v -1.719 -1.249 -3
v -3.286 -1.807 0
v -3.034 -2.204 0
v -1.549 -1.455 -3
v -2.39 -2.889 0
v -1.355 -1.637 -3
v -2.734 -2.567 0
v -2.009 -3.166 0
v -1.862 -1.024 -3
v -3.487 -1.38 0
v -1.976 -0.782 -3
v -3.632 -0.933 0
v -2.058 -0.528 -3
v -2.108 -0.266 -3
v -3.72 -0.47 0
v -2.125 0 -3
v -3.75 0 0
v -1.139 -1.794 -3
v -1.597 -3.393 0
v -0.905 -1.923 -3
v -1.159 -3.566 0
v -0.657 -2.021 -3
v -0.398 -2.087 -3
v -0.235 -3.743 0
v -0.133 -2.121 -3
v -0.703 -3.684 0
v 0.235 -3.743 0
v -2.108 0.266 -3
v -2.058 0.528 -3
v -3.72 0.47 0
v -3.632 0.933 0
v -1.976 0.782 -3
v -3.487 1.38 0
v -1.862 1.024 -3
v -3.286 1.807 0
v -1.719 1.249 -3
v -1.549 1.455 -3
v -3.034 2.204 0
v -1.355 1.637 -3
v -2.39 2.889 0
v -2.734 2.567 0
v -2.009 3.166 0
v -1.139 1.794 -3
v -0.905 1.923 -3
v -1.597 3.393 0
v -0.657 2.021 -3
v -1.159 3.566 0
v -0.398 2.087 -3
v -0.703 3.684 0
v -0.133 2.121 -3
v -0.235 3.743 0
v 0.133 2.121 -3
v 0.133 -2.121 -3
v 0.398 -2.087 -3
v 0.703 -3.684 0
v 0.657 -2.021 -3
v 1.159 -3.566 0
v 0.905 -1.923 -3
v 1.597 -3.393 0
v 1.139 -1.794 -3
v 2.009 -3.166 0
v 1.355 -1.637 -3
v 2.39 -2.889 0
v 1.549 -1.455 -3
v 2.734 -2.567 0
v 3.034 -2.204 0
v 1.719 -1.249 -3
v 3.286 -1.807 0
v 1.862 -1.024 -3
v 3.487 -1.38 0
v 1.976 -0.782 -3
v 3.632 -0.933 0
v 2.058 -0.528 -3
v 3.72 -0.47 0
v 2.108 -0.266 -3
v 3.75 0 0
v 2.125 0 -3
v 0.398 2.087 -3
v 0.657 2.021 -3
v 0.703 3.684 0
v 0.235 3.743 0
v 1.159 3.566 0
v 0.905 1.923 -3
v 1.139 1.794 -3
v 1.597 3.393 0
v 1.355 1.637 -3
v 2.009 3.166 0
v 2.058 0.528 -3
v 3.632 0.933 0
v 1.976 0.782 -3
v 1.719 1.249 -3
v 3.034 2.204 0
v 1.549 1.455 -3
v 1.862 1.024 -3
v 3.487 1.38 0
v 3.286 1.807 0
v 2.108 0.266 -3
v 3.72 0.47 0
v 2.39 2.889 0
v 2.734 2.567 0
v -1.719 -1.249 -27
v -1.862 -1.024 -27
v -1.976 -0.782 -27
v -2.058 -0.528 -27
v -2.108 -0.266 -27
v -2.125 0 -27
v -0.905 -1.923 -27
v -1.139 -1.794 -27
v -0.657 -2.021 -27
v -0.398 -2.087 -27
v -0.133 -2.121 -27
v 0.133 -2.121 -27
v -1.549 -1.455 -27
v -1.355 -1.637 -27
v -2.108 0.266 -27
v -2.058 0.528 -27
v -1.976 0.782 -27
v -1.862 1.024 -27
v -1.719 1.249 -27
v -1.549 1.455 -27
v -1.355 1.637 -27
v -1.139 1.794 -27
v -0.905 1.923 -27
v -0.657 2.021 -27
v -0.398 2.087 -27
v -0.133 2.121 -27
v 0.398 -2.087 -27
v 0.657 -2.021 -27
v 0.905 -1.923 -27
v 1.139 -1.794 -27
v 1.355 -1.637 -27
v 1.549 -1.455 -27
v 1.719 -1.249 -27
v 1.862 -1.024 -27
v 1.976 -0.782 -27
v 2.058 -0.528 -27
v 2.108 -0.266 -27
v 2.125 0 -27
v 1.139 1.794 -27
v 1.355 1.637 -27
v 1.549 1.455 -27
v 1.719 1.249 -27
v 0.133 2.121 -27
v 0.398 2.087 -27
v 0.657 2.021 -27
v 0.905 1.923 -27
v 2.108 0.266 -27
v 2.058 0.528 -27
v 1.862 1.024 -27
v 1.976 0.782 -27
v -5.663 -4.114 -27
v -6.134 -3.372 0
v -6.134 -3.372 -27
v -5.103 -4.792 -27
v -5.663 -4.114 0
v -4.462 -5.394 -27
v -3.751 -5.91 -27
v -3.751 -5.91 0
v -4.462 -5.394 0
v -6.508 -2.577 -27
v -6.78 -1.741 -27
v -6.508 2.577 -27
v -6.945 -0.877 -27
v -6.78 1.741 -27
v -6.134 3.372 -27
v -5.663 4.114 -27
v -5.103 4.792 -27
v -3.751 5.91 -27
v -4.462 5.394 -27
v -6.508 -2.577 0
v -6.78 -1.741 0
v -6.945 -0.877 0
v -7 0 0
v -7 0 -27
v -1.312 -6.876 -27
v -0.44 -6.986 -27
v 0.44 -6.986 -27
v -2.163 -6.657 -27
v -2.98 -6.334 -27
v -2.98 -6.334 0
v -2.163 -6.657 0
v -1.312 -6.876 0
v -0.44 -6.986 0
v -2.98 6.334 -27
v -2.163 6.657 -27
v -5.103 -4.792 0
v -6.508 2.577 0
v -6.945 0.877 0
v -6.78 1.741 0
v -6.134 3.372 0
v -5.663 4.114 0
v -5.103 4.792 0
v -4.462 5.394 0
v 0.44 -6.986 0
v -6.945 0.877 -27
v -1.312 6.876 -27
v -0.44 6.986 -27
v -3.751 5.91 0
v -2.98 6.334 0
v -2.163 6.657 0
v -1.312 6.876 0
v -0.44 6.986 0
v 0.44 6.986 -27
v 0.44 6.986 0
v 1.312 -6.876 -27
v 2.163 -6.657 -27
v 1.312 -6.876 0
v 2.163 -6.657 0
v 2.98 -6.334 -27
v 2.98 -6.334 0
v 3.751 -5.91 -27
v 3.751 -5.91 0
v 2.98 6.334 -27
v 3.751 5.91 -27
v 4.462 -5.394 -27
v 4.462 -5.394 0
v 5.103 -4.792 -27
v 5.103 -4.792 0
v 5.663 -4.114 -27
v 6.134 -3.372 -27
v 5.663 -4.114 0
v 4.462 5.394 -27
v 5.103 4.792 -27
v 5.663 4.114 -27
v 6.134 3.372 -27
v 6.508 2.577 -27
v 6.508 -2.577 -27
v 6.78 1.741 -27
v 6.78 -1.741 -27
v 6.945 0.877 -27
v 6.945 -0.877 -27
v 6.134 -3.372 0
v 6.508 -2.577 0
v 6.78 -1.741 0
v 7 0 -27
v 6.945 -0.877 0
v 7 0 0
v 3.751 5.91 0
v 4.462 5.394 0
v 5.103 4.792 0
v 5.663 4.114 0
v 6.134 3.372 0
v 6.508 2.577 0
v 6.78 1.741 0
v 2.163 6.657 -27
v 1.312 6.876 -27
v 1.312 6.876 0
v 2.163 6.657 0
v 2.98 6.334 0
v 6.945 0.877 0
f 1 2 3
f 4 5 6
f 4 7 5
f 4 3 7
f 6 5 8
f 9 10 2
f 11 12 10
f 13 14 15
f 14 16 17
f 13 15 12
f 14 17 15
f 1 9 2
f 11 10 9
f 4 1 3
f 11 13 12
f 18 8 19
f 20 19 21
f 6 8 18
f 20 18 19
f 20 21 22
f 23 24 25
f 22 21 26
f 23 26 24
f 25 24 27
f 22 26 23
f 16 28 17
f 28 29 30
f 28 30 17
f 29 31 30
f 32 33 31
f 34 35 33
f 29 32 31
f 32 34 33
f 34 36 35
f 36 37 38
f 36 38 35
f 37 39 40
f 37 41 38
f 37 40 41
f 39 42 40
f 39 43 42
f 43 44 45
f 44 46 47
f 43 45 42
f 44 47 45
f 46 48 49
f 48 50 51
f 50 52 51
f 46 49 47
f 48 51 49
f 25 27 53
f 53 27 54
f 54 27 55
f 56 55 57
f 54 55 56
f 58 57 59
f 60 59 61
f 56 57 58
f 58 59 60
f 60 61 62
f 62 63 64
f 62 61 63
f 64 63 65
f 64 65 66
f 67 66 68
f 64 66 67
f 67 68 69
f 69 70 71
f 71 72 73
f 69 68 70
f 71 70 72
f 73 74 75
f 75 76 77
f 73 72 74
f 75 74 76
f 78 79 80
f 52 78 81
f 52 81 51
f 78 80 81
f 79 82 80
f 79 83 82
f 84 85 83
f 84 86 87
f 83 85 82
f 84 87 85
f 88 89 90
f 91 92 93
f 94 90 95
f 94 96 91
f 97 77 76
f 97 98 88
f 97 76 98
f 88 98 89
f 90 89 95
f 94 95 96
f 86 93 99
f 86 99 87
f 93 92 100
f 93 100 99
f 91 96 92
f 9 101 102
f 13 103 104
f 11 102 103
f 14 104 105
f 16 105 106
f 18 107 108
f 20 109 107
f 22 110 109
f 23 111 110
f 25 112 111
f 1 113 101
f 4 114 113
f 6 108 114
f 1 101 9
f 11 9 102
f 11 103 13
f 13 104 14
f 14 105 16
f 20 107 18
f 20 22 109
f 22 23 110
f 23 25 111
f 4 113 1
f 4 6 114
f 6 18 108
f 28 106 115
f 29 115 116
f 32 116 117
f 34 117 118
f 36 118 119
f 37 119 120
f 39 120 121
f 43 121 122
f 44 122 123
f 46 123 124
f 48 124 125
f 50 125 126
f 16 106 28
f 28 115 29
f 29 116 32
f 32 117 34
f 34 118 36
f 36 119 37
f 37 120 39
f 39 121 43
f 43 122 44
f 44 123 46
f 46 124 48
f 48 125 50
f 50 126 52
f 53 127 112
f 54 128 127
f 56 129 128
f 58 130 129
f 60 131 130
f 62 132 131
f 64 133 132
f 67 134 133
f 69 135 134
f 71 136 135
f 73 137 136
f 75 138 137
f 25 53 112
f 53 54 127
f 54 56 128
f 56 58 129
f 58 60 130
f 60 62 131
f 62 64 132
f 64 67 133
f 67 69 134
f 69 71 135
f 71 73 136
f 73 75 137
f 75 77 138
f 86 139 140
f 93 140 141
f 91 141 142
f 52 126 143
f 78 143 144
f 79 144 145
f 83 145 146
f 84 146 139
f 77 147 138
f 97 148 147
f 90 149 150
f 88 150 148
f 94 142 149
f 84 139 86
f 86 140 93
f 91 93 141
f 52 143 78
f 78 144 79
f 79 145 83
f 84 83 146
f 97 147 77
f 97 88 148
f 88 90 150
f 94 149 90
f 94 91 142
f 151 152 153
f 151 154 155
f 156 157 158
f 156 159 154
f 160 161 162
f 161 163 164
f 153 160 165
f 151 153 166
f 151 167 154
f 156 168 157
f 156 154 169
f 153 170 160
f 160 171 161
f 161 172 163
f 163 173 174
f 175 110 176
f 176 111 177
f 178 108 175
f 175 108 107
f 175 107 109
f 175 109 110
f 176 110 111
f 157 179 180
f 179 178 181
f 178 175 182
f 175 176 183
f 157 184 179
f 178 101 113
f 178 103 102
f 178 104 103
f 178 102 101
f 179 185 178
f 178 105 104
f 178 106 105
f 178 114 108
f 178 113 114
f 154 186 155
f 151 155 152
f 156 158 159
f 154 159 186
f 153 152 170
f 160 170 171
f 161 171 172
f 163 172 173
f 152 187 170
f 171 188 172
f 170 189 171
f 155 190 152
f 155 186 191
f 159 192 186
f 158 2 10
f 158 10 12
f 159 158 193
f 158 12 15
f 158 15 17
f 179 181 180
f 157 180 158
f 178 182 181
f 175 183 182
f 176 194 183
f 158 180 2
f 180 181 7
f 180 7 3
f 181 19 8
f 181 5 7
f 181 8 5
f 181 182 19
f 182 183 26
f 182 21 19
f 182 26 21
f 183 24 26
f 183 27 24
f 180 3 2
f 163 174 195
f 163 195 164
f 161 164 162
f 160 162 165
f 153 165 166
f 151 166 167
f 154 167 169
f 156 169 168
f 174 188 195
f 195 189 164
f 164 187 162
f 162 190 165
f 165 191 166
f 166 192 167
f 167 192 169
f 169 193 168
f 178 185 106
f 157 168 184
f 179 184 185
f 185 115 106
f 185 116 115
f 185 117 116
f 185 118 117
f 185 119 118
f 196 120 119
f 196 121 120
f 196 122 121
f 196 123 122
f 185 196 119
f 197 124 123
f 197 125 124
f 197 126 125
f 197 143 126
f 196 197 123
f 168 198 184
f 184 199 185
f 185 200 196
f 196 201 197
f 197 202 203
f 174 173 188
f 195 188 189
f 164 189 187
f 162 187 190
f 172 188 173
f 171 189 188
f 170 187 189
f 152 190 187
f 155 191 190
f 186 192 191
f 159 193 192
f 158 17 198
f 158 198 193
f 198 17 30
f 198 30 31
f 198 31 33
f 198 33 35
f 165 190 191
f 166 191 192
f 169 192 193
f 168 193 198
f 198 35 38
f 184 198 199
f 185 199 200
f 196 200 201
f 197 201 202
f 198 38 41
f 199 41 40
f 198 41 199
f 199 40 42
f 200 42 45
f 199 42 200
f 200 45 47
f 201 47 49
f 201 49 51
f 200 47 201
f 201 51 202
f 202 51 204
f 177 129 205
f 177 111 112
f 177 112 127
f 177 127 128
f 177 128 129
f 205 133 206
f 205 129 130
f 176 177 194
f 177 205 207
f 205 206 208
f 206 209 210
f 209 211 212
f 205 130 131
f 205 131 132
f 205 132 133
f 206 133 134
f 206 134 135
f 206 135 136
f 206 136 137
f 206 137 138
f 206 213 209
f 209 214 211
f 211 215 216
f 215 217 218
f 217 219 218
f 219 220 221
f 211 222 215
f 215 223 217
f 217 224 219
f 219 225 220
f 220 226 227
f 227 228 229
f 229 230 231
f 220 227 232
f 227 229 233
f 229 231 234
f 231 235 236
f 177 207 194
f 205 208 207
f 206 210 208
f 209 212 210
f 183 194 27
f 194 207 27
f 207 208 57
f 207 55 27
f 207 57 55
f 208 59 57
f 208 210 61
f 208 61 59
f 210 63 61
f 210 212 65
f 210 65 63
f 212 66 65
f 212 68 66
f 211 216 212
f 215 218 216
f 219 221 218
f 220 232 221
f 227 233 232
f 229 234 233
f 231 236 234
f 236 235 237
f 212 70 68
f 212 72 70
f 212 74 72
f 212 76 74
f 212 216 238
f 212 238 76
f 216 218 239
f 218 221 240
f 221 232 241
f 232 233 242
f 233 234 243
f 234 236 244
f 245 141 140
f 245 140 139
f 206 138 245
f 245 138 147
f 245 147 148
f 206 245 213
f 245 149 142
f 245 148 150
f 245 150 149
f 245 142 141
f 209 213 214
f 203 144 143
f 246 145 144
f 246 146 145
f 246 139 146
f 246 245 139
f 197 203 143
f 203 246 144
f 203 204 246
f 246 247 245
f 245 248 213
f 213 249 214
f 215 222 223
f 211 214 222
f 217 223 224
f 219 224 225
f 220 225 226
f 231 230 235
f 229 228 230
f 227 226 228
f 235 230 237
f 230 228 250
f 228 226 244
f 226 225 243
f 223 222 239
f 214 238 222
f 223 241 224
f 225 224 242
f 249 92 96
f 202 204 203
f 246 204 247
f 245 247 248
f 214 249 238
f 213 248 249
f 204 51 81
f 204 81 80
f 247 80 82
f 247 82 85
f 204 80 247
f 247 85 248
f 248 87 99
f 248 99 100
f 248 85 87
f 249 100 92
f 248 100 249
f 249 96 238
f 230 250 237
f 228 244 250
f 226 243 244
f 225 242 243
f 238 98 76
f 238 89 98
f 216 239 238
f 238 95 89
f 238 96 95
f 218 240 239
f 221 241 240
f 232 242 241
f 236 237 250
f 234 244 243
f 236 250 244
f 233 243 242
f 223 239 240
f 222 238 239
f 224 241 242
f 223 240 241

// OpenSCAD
$fn = 50;

difference() {
	union() {
		translate(v = [0, 0, -27.0]) {
			cylinder(h = 27, r = 7.0);
		}
	}
	union() {
		translate(v = [0, 0, 0]) {
			rotate(a = [0, 0, 0]) {
				difference() {
					union() {
						translate(v = [0, 0, -30.0]) {
							cylinder(h = 30, r = 2.0);
						}
						translate(v = [0, 0, -3]) {
							cylinder(h = 3, r1 = 2.125, r2 = 3.75);
						}
						translate(v = [0, 0, -30.0]) {
							cylinder(h = 30, r = 2.125);
						}
						translate(v = [0, 0, -30.0]) {
							cylinder(h = 30, r = 2.0);
						}
					}
					union();
				}
			}
		}
	}
}
